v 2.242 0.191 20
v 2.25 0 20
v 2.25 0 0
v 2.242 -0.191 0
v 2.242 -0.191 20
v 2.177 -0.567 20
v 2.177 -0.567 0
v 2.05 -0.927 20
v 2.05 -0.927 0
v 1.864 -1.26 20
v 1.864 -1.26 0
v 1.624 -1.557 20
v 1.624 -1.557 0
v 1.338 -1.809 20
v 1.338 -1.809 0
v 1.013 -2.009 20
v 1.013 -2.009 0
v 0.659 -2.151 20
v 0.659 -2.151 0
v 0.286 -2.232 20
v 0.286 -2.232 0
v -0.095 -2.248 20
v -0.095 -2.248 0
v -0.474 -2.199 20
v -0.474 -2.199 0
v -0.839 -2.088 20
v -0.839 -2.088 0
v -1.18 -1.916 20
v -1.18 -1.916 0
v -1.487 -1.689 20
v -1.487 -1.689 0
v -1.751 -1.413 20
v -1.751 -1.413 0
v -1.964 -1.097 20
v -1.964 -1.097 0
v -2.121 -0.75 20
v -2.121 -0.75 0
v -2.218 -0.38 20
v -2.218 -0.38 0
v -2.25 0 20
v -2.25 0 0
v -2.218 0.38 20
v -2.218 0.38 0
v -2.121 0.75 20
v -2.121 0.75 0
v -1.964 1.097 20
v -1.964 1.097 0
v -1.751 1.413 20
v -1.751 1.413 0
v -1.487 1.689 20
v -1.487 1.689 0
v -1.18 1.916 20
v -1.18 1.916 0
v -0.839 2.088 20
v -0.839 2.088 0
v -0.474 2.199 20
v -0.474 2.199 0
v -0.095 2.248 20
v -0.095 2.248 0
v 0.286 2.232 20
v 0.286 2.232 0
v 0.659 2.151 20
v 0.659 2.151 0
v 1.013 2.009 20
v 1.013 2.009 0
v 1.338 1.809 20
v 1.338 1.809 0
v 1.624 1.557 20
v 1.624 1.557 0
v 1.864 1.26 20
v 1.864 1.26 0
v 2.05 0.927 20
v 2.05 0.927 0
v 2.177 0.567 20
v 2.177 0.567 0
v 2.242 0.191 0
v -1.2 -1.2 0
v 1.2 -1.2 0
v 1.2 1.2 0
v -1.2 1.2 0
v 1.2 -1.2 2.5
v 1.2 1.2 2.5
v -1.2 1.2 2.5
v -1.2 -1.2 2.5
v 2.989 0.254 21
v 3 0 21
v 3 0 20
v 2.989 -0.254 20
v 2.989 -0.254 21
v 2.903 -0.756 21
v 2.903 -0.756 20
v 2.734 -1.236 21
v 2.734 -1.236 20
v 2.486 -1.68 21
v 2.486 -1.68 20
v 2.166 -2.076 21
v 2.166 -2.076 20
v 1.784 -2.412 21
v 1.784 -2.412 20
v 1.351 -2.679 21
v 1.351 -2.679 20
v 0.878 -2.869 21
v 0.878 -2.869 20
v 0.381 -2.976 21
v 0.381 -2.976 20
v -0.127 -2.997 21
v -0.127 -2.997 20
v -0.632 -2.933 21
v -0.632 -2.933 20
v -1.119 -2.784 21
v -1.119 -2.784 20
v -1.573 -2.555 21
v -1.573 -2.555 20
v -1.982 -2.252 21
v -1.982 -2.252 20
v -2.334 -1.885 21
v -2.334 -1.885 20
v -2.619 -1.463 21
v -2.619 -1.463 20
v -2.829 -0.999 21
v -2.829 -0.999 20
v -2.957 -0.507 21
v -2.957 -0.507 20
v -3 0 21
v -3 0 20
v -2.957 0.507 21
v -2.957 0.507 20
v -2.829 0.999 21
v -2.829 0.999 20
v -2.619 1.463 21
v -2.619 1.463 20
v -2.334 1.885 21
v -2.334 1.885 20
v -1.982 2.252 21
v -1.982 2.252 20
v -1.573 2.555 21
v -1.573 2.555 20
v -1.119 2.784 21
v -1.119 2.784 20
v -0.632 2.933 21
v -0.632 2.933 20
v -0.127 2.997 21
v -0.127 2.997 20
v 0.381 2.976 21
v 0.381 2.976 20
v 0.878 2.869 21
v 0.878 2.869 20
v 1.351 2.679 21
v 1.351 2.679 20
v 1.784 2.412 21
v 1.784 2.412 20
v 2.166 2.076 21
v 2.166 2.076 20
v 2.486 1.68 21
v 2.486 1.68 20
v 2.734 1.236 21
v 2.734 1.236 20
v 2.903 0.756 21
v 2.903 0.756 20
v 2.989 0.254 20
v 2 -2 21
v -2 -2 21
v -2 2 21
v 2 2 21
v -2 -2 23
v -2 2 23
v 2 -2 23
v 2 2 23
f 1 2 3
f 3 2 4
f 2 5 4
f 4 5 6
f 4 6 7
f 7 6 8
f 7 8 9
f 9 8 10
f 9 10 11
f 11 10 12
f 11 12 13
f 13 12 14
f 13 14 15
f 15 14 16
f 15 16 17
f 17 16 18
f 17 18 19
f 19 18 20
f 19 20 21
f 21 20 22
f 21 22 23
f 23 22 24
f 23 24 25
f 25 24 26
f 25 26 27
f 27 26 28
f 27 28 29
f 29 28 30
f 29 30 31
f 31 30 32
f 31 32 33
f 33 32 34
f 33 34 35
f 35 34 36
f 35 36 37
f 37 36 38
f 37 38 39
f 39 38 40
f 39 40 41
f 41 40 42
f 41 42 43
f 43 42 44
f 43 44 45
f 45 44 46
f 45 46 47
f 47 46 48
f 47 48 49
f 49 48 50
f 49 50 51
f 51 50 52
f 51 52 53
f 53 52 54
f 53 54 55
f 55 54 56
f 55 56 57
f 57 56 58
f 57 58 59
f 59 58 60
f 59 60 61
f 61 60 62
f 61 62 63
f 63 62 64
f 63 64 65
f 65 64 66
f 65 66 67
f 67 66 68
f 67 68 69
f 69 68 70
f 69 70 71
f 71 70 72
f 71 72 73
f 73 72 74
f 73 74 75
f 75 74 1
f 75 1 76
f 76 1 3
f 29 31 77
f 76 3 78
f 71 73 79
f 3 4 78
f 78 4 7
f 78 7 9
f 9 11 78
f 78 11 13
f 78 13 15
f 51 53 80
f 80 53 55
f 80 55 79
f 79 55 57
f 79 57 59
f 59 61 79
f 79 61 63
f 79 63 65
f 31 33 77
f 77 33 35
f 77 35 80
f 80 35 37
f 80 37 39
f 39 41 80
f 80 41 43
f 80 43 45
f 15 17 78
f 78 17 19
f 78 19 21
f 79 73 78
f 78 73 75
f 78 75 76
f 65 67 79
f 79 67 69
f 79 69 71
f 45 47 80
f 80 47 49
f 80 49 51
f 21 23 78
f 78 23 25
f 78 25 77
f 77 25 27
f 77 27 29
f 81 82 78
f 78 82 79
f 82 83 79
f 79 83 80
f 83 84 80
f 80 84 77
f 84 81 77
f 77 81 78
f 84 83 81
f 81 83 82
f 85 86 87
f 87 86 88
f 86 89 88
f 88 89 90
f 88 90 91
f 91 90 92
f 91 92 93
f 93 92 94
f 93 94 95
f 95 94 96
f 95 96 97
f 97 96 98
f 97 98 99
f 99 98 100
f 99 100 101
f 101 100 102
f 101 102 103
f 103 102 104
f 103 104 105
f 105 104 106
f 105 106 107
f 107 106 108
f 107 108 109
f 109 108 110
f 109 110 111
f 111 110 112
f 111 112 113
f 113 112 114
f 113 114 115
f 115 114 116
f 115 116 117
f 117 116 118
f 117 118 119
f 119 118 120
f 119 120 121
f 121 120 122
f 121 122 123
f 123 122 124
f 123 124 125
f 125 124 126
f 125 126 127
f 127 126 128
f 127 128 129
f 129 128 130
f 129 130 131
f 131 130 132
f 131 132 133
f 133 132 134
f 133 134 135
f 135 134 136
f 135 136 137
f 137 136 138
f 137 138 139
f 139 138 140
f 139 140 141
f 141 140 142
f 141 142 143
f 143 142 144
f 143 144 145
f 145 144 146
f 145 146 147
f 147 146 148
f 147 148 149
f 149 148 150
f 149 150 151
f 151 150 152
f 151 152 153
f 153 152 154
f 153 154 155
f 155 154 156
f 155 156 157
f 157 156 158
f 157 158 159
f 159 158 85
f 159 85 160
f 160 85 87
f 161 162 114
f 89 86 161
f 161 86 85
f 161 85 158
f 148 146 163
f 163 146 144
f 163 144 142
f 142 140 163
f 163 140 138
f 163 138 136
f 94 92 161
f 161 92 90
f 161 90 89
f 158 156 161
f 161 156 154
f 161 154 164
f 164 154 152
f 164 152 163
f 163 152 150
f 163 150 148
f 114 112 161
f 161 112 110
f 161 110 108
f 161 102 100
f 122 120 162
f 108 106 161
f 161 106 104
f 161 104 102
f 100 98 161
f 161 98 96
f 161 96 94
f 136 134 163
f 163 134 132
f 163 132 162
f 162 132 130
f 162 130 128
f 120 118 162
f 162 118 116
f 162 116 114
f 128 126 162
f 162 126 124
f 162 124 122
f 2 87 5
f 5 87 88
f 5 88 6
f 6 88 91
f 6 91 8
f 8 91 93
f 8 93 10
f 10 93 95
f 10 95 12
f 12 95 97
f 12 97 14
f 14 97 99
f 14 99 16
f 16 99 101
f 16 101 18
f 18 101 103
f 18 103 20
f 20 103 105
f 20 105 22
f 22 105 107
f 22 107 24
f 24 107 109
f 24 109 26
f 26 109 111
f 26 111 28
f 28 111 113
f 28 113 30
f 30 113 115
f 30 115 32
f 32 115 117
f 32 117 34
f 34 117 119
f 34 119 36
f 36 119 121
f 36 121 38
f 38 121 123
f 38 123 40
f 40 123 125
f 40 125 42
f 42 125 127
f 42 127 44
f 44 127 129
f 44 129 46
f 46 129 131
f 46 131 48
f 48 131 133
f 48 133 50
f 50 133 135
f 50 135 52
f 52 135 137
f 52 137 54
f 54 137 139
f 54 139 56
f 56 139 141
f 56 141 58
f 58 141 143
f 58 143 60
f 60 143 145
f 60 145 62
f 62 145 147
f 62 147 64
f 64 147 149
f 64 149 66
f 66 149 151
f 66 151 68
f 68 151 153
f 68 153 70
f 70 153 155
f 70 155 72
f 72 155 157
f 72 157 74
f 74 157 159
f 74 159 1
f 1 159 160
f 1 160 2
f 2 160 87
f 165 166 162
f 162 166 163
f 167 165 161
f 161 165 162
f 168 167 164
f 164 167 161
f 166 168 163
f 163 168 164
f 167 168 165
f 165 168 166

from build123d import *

# Parameters (mm, degrees)
SKETCH_1_R          = 2.25
EXTRUDE_2_DEPTH     = 20
SKETCH_7_W          = 2.4
SKETCH_7_H          = 2.4
CUT_EXTRUDE_3_DEPTH = 2.5
SKETCH_9_R          = 3
EXTRUDE_4_DEPTH     = 1
SKETCH_10_W         = 4
SKETCH_10_H         = 4
EXTRUDE_5_DEPTH     = 2


with BuildPart() as part:
    # 草图1 → 凸台-拉伸2 (new body)
    with BuildSketch(Plane.XY):
        Circle(SKETCH_1_R)
    extrude(amount=EXTRUDE_2_DEPTH)

    # 草图7 → 切除-拉伸3 (cut)
    with BuildSketch(Plane.XY):
        Rectangle(SKETCH_7_W, SKETCH_7_H)
    extrude(amount=CUT_EXTRUDE_3_DEPTH, mode=Mode.SUBTRACT)

    # 草图9 → 凸台-拉伸4 (add)
    with BuildSketch(Plane.XY.offset(20)):
        Circle(SKETCH_9_R)
    extrude(amount=EXTRUDE_4_DEPTH)

    # 草图10 → 凸台-拉伸5 (add)
    with BuildSketch(Plane.XY.offset(21)):
        Rectangle(SKETCH_10_W, SKETCH_10_H)
    extrude(amount=EXTRUDE_5_DEPTH)


solid = part.part
